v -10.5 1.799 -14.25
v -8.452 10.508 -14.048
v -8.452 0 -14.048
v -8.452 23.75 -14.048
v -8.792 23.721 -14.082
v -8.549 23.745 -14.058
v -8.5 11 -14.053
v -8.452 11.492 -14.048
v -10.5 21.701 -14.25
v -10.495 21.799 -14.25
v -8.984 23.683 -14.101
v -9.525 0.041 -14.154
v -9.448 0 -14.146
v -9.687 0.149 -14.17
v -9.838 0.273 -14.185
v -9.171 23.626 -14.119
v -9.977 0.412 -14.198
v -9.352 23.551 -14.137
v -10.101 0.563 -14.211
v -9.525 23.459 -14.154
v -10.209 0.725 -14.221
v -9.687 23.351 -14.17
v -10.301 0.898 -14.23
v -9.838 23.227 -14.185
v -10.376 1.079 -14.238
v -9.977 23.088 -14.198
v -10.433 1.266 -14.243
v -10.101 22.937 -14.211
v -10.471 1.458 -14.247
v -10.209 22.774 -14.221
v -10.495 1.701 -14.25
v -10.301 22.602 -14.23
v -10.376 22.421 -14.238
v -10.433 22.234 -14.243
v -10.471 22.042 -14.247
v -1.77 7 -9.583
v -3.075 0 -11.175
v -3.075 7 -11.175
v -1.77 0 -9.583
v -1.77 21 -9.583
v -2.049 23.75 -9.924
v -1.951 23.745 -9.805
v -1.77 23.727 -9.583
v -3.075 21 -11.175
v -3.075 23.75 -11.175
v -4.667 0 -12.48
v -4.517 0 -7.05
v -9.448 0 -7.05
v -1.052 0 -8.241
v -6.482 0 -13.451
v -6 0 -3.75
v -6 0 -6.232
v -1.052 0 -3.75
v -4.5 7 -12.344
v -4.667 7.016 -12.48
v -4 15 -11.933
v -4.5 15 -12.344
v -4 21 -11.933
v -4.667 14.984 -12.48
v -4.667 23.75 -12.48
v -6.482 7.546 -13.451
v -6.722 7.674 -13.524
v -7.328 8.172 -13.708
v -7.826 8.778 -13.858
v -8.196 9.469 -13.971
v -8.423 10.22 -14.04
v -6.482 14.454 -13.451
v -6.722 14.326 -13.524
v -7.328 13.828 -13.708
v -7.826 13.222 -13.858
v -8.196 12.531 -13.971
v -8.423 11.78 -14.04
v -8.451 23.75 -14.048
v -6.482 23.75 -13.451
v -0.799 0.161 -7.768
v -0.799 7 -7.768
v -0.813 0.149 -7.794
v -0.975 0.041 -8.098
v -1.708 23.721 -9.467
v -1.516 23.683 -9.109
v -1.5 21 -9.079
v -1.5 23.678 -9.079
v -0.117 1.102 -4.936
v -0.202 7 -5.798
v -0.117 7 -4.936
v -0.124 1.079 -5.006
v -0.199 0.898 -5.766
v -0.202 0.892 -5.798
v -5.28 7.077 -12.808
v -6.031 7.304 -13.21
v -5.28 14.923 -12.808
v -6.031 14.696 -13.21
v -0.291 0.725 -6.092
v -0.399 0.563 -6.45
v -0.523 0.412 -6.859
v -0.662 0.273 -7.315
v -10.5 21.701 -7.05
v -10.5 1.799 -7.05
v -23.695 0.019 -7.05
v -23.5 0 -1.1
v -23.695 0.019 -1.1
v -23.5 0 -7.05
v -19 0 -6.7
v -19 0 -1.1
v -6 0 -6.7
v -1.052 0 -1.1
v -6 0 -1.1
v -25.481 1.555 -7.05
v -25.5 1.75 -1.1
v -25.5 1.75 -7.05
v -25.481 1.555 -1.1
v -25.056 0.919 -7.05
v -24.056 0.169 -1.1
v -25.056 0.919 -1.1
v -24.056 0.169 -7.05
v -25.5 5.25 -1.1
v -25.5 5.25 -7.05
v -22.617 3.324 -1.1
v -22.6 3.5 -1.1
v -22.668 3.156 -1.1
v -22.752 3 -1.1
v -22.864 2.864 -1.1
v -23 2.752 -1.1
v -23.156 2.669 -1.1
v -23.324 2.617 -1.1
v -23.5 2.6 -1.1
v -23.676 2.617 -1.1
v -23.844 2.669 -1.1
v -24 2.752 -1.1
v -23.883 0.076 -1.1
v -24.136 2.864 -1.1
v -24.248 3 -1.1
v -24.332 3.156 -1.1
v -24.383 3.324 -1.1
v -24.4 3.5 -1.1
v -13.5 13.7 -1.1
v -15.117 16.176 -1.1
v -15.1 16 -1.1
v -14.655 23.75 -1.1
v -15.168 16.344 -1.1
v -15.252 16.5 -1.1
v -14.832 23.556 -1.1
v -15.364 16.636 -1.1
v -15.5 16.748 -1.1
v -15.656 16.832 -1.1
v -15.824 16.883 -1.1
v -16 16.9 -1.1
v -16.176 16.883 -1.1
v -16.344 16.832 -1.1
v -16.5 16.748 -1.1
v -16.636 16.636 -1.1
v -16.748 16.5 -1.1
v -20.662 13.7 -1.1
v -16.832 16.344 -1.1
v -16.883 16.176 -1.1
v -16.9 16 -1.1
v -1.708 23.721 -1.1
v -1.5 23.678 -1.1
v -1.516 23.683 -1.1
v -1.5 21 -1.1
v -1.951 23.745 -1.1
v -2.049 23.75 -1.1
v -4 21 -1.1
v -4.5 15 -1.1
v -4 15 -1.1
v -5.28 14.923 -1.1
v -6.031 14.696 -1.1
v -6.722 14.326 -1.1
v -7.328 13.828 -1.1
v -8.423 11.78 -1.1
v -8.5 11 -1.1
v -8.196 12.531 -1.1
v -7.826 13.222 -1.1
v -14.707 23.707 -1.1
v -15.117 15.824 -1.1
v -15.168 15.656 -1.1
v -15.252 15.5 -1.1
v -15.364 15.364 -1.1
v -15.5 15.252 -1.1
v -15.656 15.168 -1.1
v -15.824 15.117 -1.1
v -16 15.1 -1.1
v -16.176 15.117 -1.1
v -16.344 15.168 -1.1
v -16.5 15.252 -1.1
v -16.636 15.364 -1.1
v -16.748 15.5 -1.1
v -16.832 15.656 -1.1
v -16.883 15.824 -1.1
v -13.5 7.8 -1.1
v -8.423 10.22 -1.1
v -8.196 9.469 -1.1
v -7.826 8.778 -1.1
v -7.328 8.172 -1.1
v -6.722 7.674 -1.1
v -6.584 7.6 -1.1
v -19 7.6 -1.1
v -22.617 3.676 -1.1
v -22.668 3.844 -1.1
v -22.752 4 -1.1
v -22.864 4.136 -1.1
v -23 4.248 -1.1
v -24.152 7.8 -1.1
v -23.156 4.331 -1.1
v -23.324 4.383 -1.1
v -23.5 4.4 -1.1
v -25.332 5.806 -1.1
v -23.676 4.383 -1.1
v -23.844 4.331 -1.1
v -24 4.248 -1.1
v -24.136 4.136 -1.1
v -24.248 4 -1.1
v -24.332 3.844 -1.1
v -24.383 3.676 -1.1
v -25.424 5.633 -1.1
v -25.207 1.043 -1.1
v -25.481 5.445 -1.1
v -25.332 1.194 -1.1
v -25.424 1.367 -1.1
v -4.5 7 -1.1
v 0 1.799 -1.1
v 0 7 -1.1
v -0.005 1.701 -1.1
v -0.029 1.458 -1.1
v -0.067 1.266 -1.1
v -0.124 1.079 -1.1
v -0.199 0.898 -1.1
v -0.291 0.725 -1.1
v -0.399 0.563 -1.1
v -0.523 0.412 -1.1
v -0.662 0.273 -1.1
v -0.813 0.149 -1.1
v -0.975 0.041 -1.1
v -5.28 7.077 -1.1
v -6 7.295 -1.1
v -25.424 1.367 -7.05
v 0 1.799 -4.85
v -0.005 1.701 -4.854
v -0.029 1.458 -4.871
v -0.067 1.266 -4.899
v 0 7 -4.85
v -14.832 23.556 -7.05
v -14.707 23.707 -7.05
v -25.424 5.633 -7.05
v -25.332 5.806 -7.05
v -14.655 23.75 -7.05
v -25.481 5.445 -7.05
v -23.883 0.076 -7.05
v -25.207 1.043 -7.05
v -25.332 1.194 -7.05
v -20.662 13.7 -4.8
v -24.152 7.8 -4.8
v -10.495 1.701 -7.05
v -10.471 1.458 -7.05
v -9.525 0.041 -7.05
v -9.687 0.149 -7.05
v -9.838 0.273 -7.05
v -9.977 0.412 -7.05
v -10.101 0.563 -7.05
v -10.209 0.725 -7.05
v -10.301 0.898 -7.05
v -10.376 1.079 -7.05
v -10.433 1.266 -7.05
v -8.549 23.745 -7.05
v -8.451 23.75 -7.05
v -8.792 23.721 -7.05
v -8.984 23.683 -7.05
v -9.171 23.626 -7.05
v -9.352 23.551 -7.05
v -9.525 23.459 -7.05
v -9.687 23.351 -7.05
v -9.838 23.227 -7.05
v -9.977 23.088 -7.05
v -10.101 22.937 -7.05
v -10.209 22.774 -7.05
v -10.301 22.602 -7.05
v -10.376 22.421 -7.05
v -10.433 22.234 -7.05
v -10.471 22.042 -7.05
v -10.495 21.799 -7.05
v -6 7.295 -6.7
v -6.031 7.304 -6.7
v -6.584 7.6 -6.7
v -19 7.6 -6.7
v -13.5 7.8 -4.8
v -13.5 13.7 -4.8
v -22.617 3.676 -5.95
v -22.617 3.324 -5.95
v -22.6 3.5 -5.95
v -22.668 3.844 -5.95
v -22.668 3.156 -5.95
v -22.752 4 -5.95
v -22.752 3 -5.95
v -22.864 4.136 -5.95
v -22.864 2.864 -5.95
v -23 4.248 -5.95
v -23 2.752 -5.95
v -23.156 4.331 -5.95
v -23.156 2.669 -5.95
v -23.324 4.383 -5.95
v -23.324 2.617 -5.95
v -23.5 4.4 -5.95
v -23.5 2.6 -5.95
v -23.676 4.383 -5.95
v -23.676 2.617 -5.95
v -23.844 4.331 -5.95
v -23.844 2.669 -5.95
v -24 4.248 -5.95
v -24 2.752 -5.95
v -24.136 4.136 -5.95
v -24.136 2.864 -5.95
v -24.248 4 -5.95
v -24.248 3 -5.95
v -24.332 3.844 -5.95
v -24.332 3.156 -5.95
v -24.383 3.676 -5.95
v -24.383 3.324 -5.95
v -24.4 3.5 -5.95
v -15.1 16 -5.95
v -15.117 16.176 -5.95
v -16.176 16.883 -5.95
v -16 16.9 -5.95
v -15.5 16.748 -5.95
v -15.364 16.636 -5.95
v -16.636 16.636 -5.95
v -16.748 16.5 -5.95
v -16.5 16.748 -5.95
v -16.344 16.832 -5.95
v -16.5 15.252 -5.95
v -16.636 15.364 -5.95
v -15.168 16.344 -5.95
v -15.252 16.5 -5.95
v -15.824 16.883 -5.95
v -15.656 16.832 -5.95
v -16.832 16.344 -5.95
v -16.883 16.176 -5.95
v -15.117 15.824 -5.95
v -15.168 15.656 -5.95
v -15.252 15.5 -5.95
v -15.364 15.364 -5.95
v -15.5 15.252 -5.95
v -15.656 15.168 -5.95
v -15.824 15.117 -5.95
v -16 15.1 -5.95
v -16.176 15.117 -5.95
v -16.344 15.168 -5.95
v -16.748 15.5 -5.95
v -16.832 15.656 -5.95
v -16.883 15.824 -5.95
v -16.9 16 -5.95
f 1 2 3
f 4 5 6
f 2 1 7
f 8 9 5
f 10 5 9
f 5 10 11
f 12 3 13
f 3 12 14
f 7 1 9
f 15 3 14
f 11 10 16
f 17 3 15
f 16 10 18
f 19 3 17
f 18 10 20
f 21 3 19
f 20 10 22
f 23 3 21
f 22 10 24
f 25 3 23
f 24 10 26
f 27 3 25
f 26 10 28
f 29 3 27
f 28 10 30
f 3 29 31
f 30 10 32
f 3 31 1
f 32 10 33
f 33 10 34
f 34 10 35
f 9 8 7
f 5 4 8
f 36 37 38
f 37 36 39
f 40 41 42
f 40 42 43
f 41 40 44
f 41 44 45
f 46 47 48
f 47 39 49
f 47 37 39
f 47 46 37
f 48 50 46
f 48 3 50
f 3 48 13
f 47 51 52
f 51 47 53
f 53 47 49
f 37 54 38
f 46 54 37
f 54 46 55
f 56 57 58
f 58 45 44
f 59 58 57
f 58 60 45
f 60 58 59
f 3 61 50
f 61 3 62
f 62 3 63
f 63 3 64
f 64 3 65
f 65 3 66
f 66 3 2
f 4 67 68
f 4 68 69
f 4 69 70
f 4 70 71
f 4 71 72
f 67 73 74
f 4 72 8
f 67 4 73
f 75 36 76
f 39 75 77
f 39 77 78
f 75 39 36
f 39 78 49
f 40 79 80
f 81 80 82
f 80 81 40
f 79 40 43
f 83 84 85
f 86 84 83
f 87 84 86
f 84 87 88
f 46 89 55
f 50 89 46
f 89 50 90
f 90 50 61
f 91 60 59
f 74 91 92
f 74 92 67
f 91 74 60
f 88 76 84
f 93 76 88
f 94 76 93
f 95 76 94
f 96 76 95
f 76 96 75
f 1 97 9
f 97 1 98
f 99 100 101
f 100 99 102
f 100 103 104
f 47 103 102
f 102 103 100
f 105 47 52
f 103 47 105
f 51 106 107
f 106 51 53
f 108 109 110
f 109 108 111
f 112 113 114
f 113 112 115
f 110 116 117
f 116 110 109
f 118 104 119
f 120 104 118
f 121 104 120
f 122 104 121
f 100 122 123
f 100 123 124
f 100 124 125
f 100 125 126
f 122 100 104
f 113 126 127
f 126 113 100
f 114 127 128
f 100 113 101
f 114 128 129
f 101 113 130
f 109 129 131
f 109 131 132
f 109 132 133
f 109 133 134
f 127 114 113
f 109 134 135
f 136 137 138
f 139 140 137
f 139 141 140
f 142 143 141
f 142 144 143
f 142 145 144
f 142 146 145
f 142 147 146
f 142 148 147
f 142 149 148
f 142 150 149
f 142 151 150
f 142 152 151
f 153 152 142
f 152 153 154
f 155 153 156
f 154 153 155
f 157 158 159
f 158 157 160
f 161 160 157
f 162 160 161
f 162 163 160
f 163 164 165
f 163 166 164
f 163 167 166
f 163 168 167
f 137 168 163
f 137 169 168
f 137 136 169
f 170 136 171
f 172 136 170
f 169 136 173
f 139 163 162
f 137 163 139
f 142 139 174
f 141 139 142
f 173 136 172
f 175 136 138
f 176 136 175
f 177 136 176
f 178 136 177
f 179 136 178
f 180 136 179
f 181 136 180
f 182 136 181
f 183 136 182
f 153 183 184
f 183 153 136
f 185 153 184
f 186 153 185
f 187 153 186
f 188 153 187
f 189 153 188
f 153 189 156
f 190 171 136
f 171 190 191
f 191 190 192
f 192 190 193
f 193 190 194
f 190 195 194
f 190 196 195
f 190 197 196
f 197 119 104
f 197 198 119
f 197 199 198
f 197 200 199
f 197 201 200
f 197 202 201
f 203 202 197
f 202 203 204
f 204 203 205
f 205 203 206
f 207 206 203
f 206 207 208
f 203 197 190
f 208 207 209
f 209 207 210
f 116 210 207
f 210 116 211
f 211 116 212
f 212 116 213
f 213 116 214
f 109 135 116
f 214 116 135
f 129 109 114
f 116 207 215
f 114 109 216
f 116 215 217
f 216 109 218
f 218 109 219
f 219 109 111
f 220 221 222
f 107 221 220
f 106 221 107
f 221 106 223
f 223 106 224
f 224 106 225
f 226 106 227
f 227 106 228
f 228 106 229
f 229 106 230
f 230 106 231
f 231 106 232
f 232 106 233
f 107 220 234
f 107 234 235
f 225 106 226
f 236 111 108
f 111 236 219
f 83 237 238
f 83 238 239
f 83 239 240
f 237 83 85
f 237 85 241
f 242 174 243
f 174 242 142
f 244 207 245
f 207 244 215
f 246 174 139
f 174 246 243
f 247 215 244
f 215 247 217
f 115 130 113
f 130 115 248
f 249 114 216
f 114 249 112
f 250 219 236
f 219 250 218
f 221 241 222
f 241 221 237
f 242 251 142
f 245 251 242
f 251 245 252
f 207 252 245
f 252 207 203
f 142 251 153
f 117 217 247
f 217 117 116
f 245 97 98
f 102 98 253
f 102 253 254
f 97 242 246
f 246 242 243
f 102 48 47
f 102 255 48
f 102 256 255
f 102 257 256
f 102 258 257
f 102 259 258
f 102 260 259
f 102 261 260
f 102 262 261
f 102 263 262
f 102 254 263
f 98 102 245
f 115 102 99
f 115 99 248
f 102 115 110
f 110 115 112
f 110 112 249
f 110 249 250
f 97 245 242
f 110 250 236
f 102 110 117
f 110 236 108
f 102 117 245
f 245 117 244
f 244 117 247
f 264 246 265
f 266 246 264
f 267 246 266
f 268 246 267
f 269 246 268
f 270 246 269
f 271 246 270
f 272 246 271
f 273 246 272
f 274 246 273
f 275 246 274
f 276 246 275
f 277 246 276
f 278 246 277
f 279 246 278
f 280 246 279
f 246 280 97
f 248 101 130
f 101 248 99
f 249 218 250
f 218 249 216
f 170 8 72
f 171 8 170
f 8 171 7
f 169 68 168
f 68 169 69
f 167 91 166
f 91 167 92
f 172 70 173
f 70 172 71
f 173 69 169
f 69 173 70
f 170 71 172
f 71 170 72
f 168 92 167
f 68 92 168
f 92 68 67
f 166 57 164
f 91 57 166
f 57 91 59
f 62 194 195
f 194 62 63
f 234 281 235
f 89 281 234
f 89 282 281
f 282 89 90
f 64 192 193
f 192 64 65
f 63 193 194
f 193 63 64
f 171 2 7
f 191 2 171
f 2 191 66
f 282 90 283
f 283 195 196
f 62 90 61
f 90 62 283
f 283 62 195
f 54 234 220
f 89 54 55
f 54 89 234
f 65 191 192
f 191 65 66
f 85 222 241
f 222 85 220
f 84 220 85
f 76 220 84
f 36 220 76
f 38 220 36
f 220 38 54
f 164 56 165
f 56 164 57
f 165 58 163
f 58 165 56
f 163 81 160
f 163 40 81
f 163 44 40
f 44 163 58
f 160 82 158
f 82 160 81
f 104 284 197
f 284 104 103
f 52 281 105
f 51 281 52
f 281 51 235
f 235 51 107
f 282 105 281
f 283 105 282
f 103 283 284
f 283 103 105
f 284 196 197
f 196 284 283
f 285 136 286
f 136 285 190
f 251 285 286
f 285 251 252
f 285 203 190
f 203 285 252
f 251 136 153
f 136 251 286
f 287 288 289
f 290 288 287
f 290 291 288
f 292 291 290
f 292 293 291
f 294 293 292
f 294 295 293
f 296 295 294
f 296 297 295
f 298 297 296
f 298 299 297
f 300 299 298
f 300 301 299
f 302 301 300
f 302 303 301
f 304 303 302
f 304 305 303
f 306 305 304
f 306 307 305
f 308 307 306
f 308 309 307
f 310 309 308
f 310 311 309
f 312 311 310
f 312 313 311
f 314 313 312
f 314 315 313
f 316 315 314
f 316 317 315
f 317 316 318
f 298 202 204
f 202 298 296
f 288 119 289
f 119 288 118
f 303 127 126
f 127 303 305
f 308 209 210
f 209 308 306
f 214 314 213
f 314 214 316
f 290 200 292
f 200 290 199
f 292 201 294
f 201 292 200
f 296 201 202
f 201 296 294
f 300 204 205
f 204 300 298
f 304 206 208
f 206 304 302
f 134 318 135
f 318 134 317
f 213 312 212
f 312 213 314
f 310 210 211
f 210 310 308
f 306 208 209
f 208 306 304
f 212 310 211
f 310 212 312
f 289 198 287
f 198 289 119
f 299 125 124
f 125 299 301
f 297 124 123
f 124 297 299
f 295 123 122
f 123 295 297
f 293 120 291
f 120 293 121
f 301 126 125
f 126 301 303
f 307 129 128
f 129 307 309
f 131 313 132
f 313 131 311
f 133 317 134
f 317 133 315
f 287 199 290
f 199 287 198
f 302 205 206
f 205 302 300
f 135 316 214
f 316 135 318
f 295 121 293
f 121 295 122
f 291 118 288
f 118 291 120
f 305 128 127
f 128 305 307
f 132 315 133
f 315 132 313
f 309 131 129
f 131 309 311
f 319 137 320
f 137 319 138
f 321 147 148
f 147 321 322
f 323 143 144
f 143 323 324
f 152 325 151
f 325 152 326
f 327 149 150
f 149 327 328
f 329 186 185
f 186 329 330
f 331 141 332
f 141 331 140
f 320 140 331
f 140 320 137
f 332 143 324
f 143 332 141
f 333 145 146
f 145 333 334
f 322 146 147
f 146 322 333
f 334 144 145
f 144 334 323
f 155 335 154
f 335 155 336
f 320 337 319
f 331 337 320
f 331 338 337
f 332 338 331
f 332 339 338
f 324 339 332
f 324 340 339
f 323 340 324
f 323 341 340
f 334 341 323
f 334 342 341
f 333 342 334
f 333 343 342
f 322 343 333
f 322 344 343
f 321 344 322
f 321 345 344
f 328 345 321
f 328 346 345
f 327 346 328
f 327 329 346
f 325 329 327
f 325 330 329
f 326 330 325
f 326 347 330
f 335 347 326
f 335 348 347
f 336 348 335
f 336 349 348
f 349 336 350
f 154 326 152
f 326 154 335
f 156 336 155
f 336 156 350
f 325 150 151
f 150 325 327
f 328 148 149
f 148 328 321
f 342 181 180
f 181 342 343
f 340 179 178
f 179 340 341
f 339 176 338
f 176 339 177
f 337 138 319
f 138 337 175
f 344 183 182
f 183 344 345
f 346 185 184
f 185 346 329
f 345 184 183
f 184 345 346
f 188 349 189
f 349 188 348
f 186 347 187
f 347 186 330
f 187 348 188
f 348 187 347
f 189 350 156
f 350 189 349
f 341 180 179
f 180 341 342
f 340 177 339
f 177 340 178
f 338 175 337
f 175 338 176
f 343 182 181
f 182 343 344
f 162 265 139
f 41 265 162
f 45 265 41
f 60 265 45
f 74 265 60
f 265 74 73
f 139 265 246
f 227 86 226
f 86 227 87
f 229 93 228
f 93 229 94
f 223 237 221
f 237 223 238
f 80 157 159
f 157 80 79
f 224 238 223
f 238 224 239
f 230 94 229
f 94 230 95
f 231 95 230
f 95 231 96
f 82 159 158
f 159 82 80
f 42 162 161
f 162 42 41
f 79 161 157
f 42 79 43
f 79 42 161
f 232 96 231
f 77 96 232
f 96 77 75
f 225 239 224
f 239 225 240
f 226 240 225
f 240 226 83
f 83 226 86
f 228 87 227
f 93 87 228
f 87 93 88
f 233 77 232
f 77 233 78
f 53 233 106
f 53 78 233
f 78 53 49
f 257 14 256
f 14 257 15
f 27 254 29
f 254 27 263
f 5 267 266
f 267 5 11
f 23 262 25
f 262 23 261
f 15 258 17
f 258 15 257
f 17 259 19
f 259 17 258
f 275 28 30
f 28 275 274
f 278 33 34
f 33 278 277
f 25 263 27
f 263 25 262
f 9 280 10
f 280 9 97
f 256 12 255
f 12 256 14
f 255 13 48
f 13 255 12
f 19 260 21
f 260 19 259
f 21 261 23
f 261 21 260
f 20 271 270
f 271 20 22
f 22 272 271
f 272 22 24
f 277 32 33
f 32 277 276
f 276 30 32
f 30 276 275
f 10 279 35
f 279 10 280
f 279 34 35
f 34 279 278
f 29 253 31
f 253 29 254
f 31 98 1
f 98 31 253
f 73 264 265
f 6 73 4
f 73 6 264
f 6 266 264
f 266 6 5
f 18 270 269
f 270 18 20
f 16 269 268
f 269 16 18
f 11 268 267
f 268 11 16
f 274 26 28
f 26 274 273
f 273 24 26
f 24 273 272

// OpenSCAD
//lol here's a power/mode button support

//notes from mvp print:
//-cut entire front face for mode button
//-add 1mm fudge room around parts.
//-add a 1mm z depth to connectors
//-remove 2.2mm from the extension "height".

//notes from mvp2 print:
//-still need 2.2mm extra thickness on support.

$fn=32;

// hclearance left of cartridge area inside shell
// measured 10.75mm

pcbclearance=1.1;
hclearance=10.5;
vclearance=14.25;
stackclearance=7.2;

supportplatethickness=vclearance-pcbclearance-stackclearance;
vsupport=(supportplatethickness+hclearance)-vclearance;
echo(supportplatethickness);
echo(vsupport);

//translate([-modex,-10,-vclearance])
//color("blue") cube([modex,modey,vclearance]);
//
//translate([-modex,modey-10,-vclearance])
//color("red") cube([10,10,stackclearance]);

// peg keepout
//D measured 7.58mm
pegD=8;
//Inset measured ~ 4.88mm
pegI=4.5;
//Y
pegY=11;

//mode board
// H
modey=24;
// W
modex=25.5;
// no mount
modexnoflag=21;

noflag=true;

//mode button itself
// H
mbuttx=4;
// W
mbutty=6.5;
// D
mbuttz=vclearance;

//face clearance
facecw=10.5;
facech=7;

// Power Switch
//H
pswz=5.6;
//W measured 12.69mm
pswx=13;
//D 
pswy=7.5;
//Offset
mswo=6;

//Connector
//H
mconz=3.7;
//W
mconx=4.4;
//D
mcony=5.4+.5;
//X Offset
mconox=13.5;
//Y Offset
mconoy=7.8;

//Mounting holes
md=1.8;
//Top X
tx=23.5;
//Top Y
ty=3.5;
//Bot X
bx=16;
//Bot Y
by=16;

//base_shape();

final_part();

//post placement
//translate([-hclearance,modey+3,-vclearance-pcbclearance])
//cylinder(d=2, h=vclearance);

module final_part() {

    intersection(){
difference() {
    base_shape();
    all_cuts();
    //base_block();
}
        union(){
        over_cut();
        over_cut_low();
        
        }
    }
}

module base_shape() {
    union() {
        base_block();
        smooth_base();
        //support_tab();
    }
}

module over_cut(){
    translate([-modey/2-1,modex/2-1,-supportplatethickness-pcbclearance])
    cheese(modey+2, modey, supportplatethickness, 2);
}

module over_cut_low(){
    translate([-hclearance/2,modex/2-1,-(vclearance-supportplatethickness-pcbclearance)-supportplatethickness-pcbclearance])
    cheese(hclearance, modey, vclearance-supportplatethickness-pcbclearance, 2);
}


module smooth_base() {
    translate([0,0,-supportplatethickness-pcbclearance])
    hull() {
    //top left
    translate([-1,1,supportplatethickness-3.75])
    cylinder(d=2, h=3.75);

    //bottom left
    translate([-1,modey-1,supportplatethickness-3.75])
    cylinder(d=2, h=3.75);

    //top left inside step
    translate([-1-3,1,0])
    cylinder(d=2, h=supportplatethickness);

    //bottom left inside step
    translate([-1-3,modey-1,0])
    cylinder(d=2, h=supportplatethickness);


    //bottom left inset
    translate([-1-13,modey-1,0])
    cylinder(d=2, h=supportplatethickness);

    //top right
    //translate([-modex+1,1,0])
    //cylinder(d=2, h=supportplatethickness);

    //top right inset
    translate([-modex+2,1,0])
    cylinder(d=2, h=supportplatethickness);


    //right 1st attempt
    //translate([-modex+1,pswy,0])
    //#cylinder(d=2, h=supportplatethickness);

    // bottom hole outlines
    translate([-bx-1,by-pswy/2+2,0])
    cylinder(d=2, h=supportplatethickness);

    translate([-bx-1,by+pswy/2-2,0])
    cylinder(d=2, h=supportplatethickness);

    // top hole outlines
    translate([-tx-1,ty-pswy/2+2,0])
    cylinder(d=2, h=supportplatethickness);

    translate([-tx-1,ty+pswy/2-2,0])
    cylinder(d=2, h=supportplatethickness);
        
    //bottom left
//    translate([-1,modey+3,supportplatethickness-3.75])
//    cylinder(d=2, h=3.75);
    //bottom left inside step
//    translate([-1-3,modey+3,0])
//    cylinder(d=2, h=supportplatethickness);

    }
} //end smooth_base module

module support_tab(){
    translate([0,0,-pcbclearance-supportplatethickness-1.2])
    hull() {
        //tab support
        translate([-hclearance,modey+3,0])
        cylinder(d=4, h=1.2);
        
        //bottom left
        translate([-1,modey-1,0])
        cylinder(d=2, h=1.2);
        
        //bottom left inset
        translate([-1-13,modey-1,0])
        cylinder(d=2, h=1.2);
    }
}

module all_cuts() {
    
//    difference() {
//
//    base_block();

    translate([-pegI, pegY, -vclearance]){
        //peg clearance
        cylinder(d=pegD, h=vclearance);
        translate([0,-pegD/2,0])
        //peg extension
        cube([pegD,pegD,vclearance]);
    }
        //mode button cut
        translate([-mbuttx,modey-mbutty-3,-mbuttz-pcbclearance])
        cube([mbuttx,mbutty,mbuttz]);

        //mode button face cut
        translate([0-1.5,modey-facecw,-facech-4])
        cube([mbuttx/2,facecw+1,facech+4]);

        //power switch
        translate([-pswx-mswo,-1,-pswz-pcbclearance])
        cube([pswx, pswy+pcbclearance, pswz]);

        //connector
        translate([-mconx-mconox-10,mconoy,-mconz-pcbclearance])
        cube([mconx+10, mcony, mconz+pcbclearance]);
    
        //connector thru
//      translate([-mconx-mconox-10,mconoy,-(vclearance-hclearance+1)])
//        #cube([mconx+10, mcony, vclearance-hclearance+1]);

        //Mounting holes
        translate([-tx,ty,-supportplatethickness])
        cylinder(h=supportplatethickness, d=md);
        translate([-bx,by,-supportplatethickness])
        cylinder(h=supportplatethickness, d=md);

        //post placement
        translate([-hclearance,modey+3,-vclearance-pcbclearance])
        cylinder(d=1.8, h=vclearance);

//    } // end difference 
} //end rough part


module base_block(){
    translate([-hclearance,0,-vclearance+hclearance]) {
    union() {
        rotate([90,0,180])
        difference(){
            cylinder(h=modey, r=hclearance);

            translate([-hclearance,0,0])
            cube([hclearance*2,hclearance*2,modey]);

            translate([0,-hclearance,0])
            cube([hclearance*2,hclearance*2,modey]);
        }
        
        //base plate
//        translate([-modex+hclearance,0,0])
//        cube([modex, modey, vclearance-hclearance]);
//        translate([hclearance,0,0])
        }
    }
}
        

module cheese(x,y,z,r) {
linear_extrude(height=z) offset(-r) offset(r) offset(r) offset(-r)
    square([x,y], center=true);
}
